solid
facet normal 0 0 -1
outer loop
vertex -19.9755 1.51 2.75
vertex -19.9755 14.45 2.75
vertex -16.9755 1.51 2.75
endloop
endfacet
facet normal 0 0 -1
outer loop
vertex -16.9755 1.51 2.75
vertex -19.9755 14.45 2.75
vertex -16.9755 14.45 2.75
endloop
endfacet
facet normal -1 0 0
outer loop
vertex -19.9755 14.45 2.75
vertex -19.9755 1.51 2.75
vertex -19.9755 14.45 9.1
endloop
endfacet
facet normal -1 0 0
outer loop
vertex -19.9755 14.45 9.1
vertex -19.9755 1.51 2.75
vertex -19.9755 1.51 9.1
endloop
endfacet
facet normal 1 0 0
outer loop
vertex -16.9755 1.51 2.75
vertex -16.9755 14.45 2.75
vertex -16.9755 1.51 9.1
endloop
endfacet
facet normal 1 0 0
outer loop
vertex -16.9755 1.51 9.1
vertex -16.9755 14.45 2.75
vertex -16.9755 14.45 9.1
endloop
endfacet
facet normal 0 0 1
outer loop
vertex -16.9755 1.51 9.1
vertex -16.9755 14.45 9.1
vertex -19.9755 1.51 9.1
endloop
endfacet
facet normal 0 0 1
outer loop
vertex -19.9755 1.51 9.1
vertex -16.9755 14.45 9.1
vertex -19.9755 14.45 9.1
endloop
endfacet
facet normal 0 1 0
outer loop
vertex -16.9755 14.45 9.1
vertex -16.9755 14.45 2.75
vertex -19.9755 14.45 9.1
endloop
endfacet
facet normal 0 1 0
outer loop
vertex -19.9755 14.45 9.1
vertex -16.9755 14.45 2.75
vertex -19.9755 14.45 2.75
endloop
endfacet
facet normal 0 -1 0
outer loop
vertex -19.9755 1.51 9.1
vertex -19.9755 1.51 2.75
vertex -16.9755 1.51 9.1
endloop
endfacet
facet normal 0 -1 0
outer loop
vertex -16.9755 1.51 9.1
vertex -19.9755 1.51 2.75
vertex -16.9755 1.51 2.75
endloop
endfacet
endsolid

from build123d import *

# Parameters (mm, degrees)
SKETCH1_W                                    = 184.15
SKETCH1_H                                    = 184.15
PANEL_DEPTH                                  = 2.75
LED_HOLE_REACH                               = 132.243
SKETCH19_R                                   = 2.75
LED_HOLES_PATTERN_COUNT                      = 13
LED_HOLES_PATTERN_PITCH                      = 12.319
LED_HOLES_PATTERN_COUNT_DIR2                 = 10
LED_HOLES_PATTERN_PITCH_DIR2                 = 15.94
SKETCH2_R                                    = 2.75
SKETCH2_W                                    = 4.99243385
SKETCH2_H                                    = 2.307727076
CORNER_LEDS_LIGHT_SENSOR_CUT_DEPTH           = 131.242749318
LIGHT_SENSOR_HOLDER_DEPTH                    = 2.4
SKETCH6_W                                    = 164.47360298
SKETCH6_H                                    = 161.542860252
OUTER_LIGHT_WALLS_DEPTH                      = 6.35
SKETCH7_W                                    = 158.47360298
SKETCH7_H                                    = 155.542860252
OUTER_LIGHT_WALLS_CUT_DEPTH                  = 7.5
SKETCH8_W                                    = 158.47560298
SKETCH8_H                                    = 3
INNER_H_WALLS_DEPTH                          = 7.5
INNER_H_WALLS_PATTERN_COUNT                  = 9
INNER_H_WALLS_PATTERN_PITCH                  = 15.94
INNER_START                                  = -1.15
INNER_V_WALLS_1ST_LINE_DEPTH                 = 7.5
INNER_V_WALLS_PATTERN_1ST_LINE_COUNT         = 12
INNER_V_WALLS_PATTERN_1ST_LINE_PITCH         = 12.32
SKETCH13_W                                   = 3
SKETCH13_H                                   = 12.501430126
EXTRA_V_WALLS_REMOVAL_1ST_LINE_DEPTH         = 7.5
SKETCH14_W                                   = 3
SKETCH14_H                                   = 12.94
INNER_V_WALLS_DEPTH                          = 6.35
INNER_V_WALLS_PATTERN_COUNT                  = 12
INNER_V_WALLS_PATTERN_PITCH                  = 12.32
INNER_V_WALLS_PATTERN_COUNT_DIR2             = 9
INNER_V_WALLS_PATTERN_PITCH_DIR2             = 15.94
SKETCH15_W                                   = 3
SKETCH15_H                                   = 12.94
EXTRA_V_WALLS_REMOVAL_DEPTH                  = 7.5
SKETCH16_W                                   = 6.43819851
SKETCH16_H                                   = 3
SKETCH16_W_2                                 = 3
SKETCH16_H_2                                 = 7.903569874
CORNER_LED_LIGHT_BAFFLES_DEPTH               = 6.35
CORNER_LED_LIGHT_BAFFLES_MIRROR_2_COPY_1_W   = 6.43819851
CORNER_LED_LIGHT_BAFFLES_MIRROR_2_COPY_1_H   = 3
CORNER_LED_LIGHT_BAFFLES_MIRROR_2_COPY_1_W_2 = 3
CORNER_LED_LIGHT_BAFFLES_MIRROR_2_COPY_1_H_2 = 7.903569874
CORNER_LED_LIGHT_BAFFLES_MIRROR_2_CO_2_DEPTH = 6.35
LED_STRIP_SQUARE_HOLE_1ST_LINE_REACH         = 132.43
SKETCH20_W                                   = 5.5
SKETCH20_H                                   = 5.5
LED_STRIP_SQUARE_HOLE_REACH                  = 132.43
SKETCH22_W                                   = 5.5
SKETCH22_H                                   = 5.5
LED_STRIP_SQUARE_HOLES_PATTERN_COUNT         = 13
LED_STRIP_SQUARE_HOLES_PATTERN_PITCH         = 12.319
LED_STRIP_SQUARE_HOLES_PATTERN_COUNT_DIR2    = 6
LED_STRIP_SQUARE_HOLES_PATTERN_PITCH_DIR2    = 15.94
SKETCH27_W                                   = 149.47360298
SKETCH27_H                                   = 7.903569874
SKETCH27_W_2                                 = 6.43819851
SKETCH27_H_2                                 = 146.542860252
CUT_EXTRUDE15_DEPTH                          = 1
CHAMFER1_SIZE                                = 1
SKETCH30_OUTSIDE_W                           = 238.268
SKETCH30_OUTSIDE_H                           = 238.268
SKETCH30_OUTSIDE_W_2                         = 3
SKETCH30_OUTSIDE_H_2                         = 12.94
CUT_EXTRUDE24_DEPTH                          = 7.5


with BuildPart() as part:
    # Sketch1 → panel (new body)
    with BuildSketch(Plane.XY):
        Rectangle(SKETCH1_W, SKETCH1_H)
    extrude(amount=PANEL_DEPTH)

    # Sketch19 → LED hole (cut, up to next)
    with BuildSketch(Plane.XY.offset(2.75), mode=Mode.PRIVATE) as led_hole_sk1:
        with Locations((-73.915, 71.74)):
            Circle(SKETCH19_R)
    led_hole_tool1 = extrude(led_hole_sk1.sketch, amount=-LED_HOLE_REACH, mode=Mode.PRIVATE) & part.part
    led_hole = led_hole_tool1.solids().sort_by_distance((-73.915, 71.74, 2.75))[0]
    add(led_hole, mode=Mode.SUBTRACT)

    # LED holes pattern: LED hole 13 × 10, 32 skipped
    with Locations(*[(i * LED_HOLES_PATTERN_PITCH, -j * LED_HOLES_PATTERN_PITCH_DIR2, 0) for i in range(LED_HOLES_PATTERN_COUNT) for j in range(LED_HOLES_PATTERN_COUNT_DIR2) if (i, j) not in ((0, 0), (0, 3), (0, 4), (1, 3), (1, 4), (2, 0), (2, 3), (2, 4), (3, 3), (3, 4), (3, 6), (3, 8), (4, 2), (4, 3), (4, 4), (4, 6), (4, 8), (5, 0), (5, 3), (5, 4), (5, 6), (5, 8), (6, 3), (6, 4), (6, 6), (6, 8), (6, 9), (7, 4), (7, 8), (8, 8), (9, 8), (12, 2), (12, 6))]):
        add(led_hole, mode=Mode.SUBTRACT)

    # Sketch2 → corner LEDs _ light sensor cut (cut, through all)
    with BuildSketch(Plane.XY.offset(2.75)):
        with Locations((-84.075, 84.075)):
            Circle(SKETCH2_R)
        with Locations(Location((84.075, 84.075, 0), (0, 0, 180))):
            Circle(SKETCH2_R)
        with Locations((84.075, -84.075)):
            Circle(SKETCH2_R)
        with Locations(Location((-84.075, -84.075, 0), (0, 0, 180))):
            Circle(SKETCH2_R)
        with Locations((0, 84.075)):
            Rectangle(SKETCH2_W, SKETCH2_H)
    extrude(amount=-CORNER_LEDS_LIGHT_SENSOR_CUT_DEPTH, mode=Mode.SUBTRACT)

    # Sketch3 → light sensor holder (cut)
    with BuildSketch(Plane.XY.offset(2.75)):
        with BuildLine():
            Line((-1.58113883, 81.825), (1.58113883, 81.825))
            ThreePointArc((1.58113883, 81.825), (2.75, 84.075), (1.58113883, 86.325))
            Line((1.58113883, 86.325), (-1.58113883, 86.325))
            ThreePointArc((-1.58113883, 86.325), (-2.75, 84.075), (-1.58113883, 81.825))
        make_face()
    extrude(amount=-LIGHT_SENSOR_HOLDER_DEPTH, mode=Mode.SUBTRACT)

    # Sketch6 → outer light walls (add)
    with BuildSketch(Plane.XY.offset(2.75)):
        Rectangle(SKETCH6_W, SKETCH6_H)
    extrude(amount=OUTER_LIGHT_WALLS_DEPTH)

    # Sketch7 → outer light walls cut (cut)
    with BuildSketch(Plane.XY.offset(9.1)):
        Rectangle(SKETCH7_W, SKETCH7_H)
    extrude(amount=-OUTER_LIGHT_WALLS_CUT_DEPTH, mode=Mode.SUBTRACT)

    # Sketch8 → inner H walls (add)
    with BuildSketch(Plane.XY.offset(1.6)):
        with Locations((-0.001, 63.77)):
            Rectangle(SKETCH8_W, SKETCH8_H)
    inner_h_walls = extrude(amount=INNER_H_WALLS_DEPTH)

    # inner H walls pattern: inner H walls ×9
    with Locations(*[(0, -i * INNER_H_WALLS_PATTERN_PITCH, 0) for i in range(1, INNER_H_WALLS_PATTERN_COUNT)]):
        add(inner_h_walls)

    # Sketch12 → inner V walls _1st line (add)
    with BuildSketch(Plane.XY.offset(2.75).offset(INNER_START)):
        Polygon((-69.2555, 65.708569874), (-69.2555, 65.27), (-66.2555, 65.27), (-66.2555, 65.708569874), (-66.2555, 77.771430126), (-69.2555, 77.771430126), align=None)
    inner_v_walls_1st_line = extrude(amount=INNER_V_WALLS_1ST_LINE_DEPTH)

    # inner V walls pattern _1st line: inner V walls _1st line ×12, 6 skipped
    with Locations(*[(i * INNER_V_WALLS_PATTERN_1ST_LINE_PITCH, 0, 0) for i in range(1, INNER_V_WALLS_PATTERN_1ST_LINE_COUNT) if i not in (3, 6, 7, 9, 10, 11)]):
        add(inner_v_walls_1st_line)

    # Sketch13 → extra V walls removal _1st line (cut)
    with BuildSketch(Plane.XY.offset(9.1)):
        with Locations((-67.7555, 71.520715063)):
            Rectangle(SKETCH13_W, SKETCH13_H)
    extrude(amount=-EXTRA_V_WALLS_REMOVAL_1ST_LINE_DEPTH, mode=Mode.SUBTRACT)

    # Sketch14 → inner V walls (add)
    with BuildSketch(Plane.XY.offset(2.75)):
        with Locations((-67.7555, 55.8)):
            Rectangle(SKETCH14_W, SKETCH14_H)
    inner_v_walls = extrude(amount=INNER_V_WALLS_DEPTH)

    # inner V walls pattern: inner V walls 12 × 9, 86 skipped
    with Locations(*[(i * INNER_V_WALLS_PATTERN_PITCH, -j * INNER_V_WALLS_PATTERN_PITCH_DIR2, 0) for i in range(INNER_V_WALLS_PATTERN_COUNT) for j in range(INNER_V_WALLS_PATTERN_COUNT_DIR2) if (i, j) not in ((0, 0), (0, 1), (0, 2), (0, 3), (0, 4), (0, 5), (0, 6), (0, 7), (0, 8), (1, 0), (1, 1), (1, 2), (1, 3), (1, 4), (1, 5), (1, 6), (1, 7), (1, 8), (2, 0), (2, 1), (2, 2), (2, 3), (2, 4), (2, 6), (2, 8), (3, 0), (3, 2), (3, 3), (3, 4), (3, 5), (3, 7), (3, 8), (4, 0), (4, 4), (4, 5), (4, 6), (4, 7), (4, 8), (5, 0), (5, 1), (5, 2), (5, 3), (5, 5), (5, 6), (5, 7), (6, 1), (6, 3), (6, 4), (6, 6), (6, 7), (7, 0), (7, 1), (7, 2), (7, 4), (7, 5), (7, 6), (7, 7), (8, 0), (8, 1), (8, 2), (8, 3), (8, 4), (8, 5), (8, 7), (8, 8), (9, 0), (9, 1), (9, 2), (9, 3), (9, 5), (9, 6), (9, 8), (10, 0), (10, 1), (10, 3), (10, 4), (10, 5), (10, 6), (10, 7), (10, 8), (11, 0), (11, 2), (11, 3), (11, 4), (11, 6), (11, 7), (11, 8))]):
        add(inner_v_walls)

    # Sketch15 → extra V walls removal (cut)
    with BuildSketch(Plane.XY.offset(9.1)):
        with Locations((-67.7555, 55.8)):
            Rectangle(SKETCH15_W, SKETCH15_H)
    extrude(amount=-EXTRA_V_WALLS_REMOVAL_DEPTH, mode=Mode.SUBTRACT)

    # Sketch16 → corner LED light baffles (add)
    with BuildSketch(Plane.XY.offset(2.75)):
        with Locations((-85.455900745, 74.771430126)):
            Rectangle(SKETCH16_W, SKETCH16_H)
        with Locations((-76.23680149, 84.723215063)):
            Rectangle(SKETCH16_W_2, SKETCH16_H_2)
    corner_led_light_baffles = extrude(amount=CORNER_LED_LIGHT_BAFFLES_DEPTH)

    # corner LED light baffles mirror: corner LED light baffles across plane
    add(corner_led_light_baffles.mirror(Plane(origin=(0, 0, 0), x_dir=(0, 0, 1), z_dir=(1, 0, 0))))

    # corner LED light baffles mirror 2: corner LED light baffles across plane
    add(corner_led_light_baffles.mirror(Plane.ZX))

    # corner LED light baffles mirror 2 copy 1 → corner LED light baffles mirror 2 co 2 (add)
    with BuildSketch(Plane(origin=(0, 0, 2.75), x_dir=(-1, 0, 0), z_dir=(0, 0, 1))):
        with Locations((-85.455900745, 74.771430126)):
            Rectangle(CORNER_LED_LIGHT_BAFFLES_MIRROR_2_COPY_1_W, CORNER_LED_LIGHT_BAFFLES_MIRROR_2_COPY_1_H)
        with Locations((-76.23680149, 84.723215063)):
            Rectangle(CORNER_LED_LIGHT_BAFFLES_MIRROR_2_COPY_1_W_2, CORNER_LED_LIGHT_BAFFLES_MIRROR_2_COPY_1_H_2)
    extrude(amount=CORNER_LED_LIGHT_BAFFLES_MIRROR_2_CO_2_DEPTH)

    # Sketch20 → LED strip square hole _1st line (cut, up to next)
    with BuildSketch(Plane.XY.offset(1.6), mode=Mode.PRIVATE) as led_strip_square_hole_1st_line_sk1:
        with Locations((-49.2755, 71.520715063)):
            Rectangle(SKETCH20_W, SKETCH20_H)
    led_strip_square_hole_1st_line_tool1 = extrude(led_strip_square_hole_1st_line_sk1.sketch, amount=-LED_STRIP_SQUARE_HOLE_1ST_LINE_REACH, mode=Mode.PRIVATE) & part.part
    add(led_strip_square_hole_1st_line_tool1.solids().sort_by_distance((-49.2755, 71.520715, 1.6))[0], mode=Mode.SUBTRACT)

    # Sketch22 → LED strip square hole (cut, up to next)
    with BuildSketch(Plane.XY.offset(1.6), mode=Mode.PRIVATE) as led_strip_square_hole_sk1:
        with Locations((-73.915, 23.92)):
            Rectangle(SKETCH22_W, SKETCH22_H)
    led_strip_square_hole_tool1 = extrude(led_strip_square_hole_sk1.sketch, amount=-LED_STRIP_SQUARE_HOLE_REACH, mode=Mode.PRIVATE) & part.part
    led_strip_square_hole = led_strip_square_hole_tool1.solids().sort_by_distance((-73.915, 23.92, 1.6))[0]
    add(led_strip_square_hole, mode=Mode.SUBTRACT)

    # LED strip square holes pattern: LED strip square hole 13 × 6, 51 skipped
    with Locations(*[(i * LED_STRIP_SQUARE_HOLES_PATTERN_PITCH, -j * LED_STRIP_SQUARE_HOLES_PATTERN_PITCH_DIR2, 0) for i in range(LED_STRIP_SQUARE_HOLES_PATTERN_COUNT) for j in range(LED_STRIP_SQUARE_HOLES_PATTERN_COUNT_DIR2) if (i, j) not in ((0, 0), (0, 2), (0, 3), (0, 4), (0, 5), (1, 2), (1, 3), (1, 4), (1, 5), (2, 2), (2, 3), (2, 4), (2, 5), (3, 2), (3, 4), (4, 2), (4, 4), (5, 2), (5, 4), (6, 2), (6, 4), (7, 0), (7, 2), (7, 3), (7, 4), (8, 0), (8, 1), (8, 2), (8, 3), (8, 4), (9, 0), (9, 1), (9, 2), (9, 3), (9, 4), (10, 0), (10, 1), (10, 2), (10, 3), (10, 4), (10, 5), (11, 0), (11, 1), (11, 2), (11, 3), (11, 4), (11, 5), (12, 0), (12, 1), (12, 2), (12, 4), (12, 5))]):
        add(led_strip_square_hole, mode=Mode.SUBTRACT)

    # Sketch27 → Cut-Extrude15 (cut)
    with BuildSketch(Plane.XY.offset(2.75)):
        with Locations((0, 84.723215063)):
            Rectangle(SKETCH27_W, SKETCH27_H)
        with Locations((-85.455900745, 0)):
            Rectangle(SKETCH27_W_2, SKETCH27_H_2)
        with Locations((0, -84.723215063)):
            Rectangle(SKETCH27_W, SKETCH27_H)
        with Locations((85.455900745, 0)):
            Rectangle(SKETCH27_W_2, SKETCH27_H_2)
    extrude(amount=-CUT_EXTRUDE15_DEPTH, mode=Mode.SUBTRACT)

    # Chamfer1
    chamfer1_edges = [part.edges().sort_by_distance(p)[0] for p in [
        (-92.075, 0, 2.75),
        (0, -92.075, 2.75),
        (92.075, 0, 2.75),
        (0, 92.075, 2.75),
    ]]
    chamfer(chamfer1_edges, length=CHAMFER1_SIZE)

    # Sketch30 outside → Cut-Extrude24 (cut)
    with BuildSketch(Plane.XY.offset(9.1)):
        Rectangle(SKETCH30_OUTSIDE_W, SKETCH30_OUTSIDE_H)
        with Locations((-18.4755, 7.98)):
            Rectangle(SKETCH30_OUTSIDE_W_2, SKETCH30_OUTSIDE_H_2, mode=Mode.SUBTRACT)
    extrude(amount=-CUT_EXTRUDE24_DEPTH, mode=Mode.SUBTRACT)


with BuildPart() as cut_extrude24_kept_piece:
    # of the separate pieces the step leaves, the one the design keeps (cut_extrude24_pieces_kept)
    add(part.part.solids().sort_by_distance((-19.9755, 14.45, 2.75))[0])


solid = cut_extrude24_kept_piece.part
